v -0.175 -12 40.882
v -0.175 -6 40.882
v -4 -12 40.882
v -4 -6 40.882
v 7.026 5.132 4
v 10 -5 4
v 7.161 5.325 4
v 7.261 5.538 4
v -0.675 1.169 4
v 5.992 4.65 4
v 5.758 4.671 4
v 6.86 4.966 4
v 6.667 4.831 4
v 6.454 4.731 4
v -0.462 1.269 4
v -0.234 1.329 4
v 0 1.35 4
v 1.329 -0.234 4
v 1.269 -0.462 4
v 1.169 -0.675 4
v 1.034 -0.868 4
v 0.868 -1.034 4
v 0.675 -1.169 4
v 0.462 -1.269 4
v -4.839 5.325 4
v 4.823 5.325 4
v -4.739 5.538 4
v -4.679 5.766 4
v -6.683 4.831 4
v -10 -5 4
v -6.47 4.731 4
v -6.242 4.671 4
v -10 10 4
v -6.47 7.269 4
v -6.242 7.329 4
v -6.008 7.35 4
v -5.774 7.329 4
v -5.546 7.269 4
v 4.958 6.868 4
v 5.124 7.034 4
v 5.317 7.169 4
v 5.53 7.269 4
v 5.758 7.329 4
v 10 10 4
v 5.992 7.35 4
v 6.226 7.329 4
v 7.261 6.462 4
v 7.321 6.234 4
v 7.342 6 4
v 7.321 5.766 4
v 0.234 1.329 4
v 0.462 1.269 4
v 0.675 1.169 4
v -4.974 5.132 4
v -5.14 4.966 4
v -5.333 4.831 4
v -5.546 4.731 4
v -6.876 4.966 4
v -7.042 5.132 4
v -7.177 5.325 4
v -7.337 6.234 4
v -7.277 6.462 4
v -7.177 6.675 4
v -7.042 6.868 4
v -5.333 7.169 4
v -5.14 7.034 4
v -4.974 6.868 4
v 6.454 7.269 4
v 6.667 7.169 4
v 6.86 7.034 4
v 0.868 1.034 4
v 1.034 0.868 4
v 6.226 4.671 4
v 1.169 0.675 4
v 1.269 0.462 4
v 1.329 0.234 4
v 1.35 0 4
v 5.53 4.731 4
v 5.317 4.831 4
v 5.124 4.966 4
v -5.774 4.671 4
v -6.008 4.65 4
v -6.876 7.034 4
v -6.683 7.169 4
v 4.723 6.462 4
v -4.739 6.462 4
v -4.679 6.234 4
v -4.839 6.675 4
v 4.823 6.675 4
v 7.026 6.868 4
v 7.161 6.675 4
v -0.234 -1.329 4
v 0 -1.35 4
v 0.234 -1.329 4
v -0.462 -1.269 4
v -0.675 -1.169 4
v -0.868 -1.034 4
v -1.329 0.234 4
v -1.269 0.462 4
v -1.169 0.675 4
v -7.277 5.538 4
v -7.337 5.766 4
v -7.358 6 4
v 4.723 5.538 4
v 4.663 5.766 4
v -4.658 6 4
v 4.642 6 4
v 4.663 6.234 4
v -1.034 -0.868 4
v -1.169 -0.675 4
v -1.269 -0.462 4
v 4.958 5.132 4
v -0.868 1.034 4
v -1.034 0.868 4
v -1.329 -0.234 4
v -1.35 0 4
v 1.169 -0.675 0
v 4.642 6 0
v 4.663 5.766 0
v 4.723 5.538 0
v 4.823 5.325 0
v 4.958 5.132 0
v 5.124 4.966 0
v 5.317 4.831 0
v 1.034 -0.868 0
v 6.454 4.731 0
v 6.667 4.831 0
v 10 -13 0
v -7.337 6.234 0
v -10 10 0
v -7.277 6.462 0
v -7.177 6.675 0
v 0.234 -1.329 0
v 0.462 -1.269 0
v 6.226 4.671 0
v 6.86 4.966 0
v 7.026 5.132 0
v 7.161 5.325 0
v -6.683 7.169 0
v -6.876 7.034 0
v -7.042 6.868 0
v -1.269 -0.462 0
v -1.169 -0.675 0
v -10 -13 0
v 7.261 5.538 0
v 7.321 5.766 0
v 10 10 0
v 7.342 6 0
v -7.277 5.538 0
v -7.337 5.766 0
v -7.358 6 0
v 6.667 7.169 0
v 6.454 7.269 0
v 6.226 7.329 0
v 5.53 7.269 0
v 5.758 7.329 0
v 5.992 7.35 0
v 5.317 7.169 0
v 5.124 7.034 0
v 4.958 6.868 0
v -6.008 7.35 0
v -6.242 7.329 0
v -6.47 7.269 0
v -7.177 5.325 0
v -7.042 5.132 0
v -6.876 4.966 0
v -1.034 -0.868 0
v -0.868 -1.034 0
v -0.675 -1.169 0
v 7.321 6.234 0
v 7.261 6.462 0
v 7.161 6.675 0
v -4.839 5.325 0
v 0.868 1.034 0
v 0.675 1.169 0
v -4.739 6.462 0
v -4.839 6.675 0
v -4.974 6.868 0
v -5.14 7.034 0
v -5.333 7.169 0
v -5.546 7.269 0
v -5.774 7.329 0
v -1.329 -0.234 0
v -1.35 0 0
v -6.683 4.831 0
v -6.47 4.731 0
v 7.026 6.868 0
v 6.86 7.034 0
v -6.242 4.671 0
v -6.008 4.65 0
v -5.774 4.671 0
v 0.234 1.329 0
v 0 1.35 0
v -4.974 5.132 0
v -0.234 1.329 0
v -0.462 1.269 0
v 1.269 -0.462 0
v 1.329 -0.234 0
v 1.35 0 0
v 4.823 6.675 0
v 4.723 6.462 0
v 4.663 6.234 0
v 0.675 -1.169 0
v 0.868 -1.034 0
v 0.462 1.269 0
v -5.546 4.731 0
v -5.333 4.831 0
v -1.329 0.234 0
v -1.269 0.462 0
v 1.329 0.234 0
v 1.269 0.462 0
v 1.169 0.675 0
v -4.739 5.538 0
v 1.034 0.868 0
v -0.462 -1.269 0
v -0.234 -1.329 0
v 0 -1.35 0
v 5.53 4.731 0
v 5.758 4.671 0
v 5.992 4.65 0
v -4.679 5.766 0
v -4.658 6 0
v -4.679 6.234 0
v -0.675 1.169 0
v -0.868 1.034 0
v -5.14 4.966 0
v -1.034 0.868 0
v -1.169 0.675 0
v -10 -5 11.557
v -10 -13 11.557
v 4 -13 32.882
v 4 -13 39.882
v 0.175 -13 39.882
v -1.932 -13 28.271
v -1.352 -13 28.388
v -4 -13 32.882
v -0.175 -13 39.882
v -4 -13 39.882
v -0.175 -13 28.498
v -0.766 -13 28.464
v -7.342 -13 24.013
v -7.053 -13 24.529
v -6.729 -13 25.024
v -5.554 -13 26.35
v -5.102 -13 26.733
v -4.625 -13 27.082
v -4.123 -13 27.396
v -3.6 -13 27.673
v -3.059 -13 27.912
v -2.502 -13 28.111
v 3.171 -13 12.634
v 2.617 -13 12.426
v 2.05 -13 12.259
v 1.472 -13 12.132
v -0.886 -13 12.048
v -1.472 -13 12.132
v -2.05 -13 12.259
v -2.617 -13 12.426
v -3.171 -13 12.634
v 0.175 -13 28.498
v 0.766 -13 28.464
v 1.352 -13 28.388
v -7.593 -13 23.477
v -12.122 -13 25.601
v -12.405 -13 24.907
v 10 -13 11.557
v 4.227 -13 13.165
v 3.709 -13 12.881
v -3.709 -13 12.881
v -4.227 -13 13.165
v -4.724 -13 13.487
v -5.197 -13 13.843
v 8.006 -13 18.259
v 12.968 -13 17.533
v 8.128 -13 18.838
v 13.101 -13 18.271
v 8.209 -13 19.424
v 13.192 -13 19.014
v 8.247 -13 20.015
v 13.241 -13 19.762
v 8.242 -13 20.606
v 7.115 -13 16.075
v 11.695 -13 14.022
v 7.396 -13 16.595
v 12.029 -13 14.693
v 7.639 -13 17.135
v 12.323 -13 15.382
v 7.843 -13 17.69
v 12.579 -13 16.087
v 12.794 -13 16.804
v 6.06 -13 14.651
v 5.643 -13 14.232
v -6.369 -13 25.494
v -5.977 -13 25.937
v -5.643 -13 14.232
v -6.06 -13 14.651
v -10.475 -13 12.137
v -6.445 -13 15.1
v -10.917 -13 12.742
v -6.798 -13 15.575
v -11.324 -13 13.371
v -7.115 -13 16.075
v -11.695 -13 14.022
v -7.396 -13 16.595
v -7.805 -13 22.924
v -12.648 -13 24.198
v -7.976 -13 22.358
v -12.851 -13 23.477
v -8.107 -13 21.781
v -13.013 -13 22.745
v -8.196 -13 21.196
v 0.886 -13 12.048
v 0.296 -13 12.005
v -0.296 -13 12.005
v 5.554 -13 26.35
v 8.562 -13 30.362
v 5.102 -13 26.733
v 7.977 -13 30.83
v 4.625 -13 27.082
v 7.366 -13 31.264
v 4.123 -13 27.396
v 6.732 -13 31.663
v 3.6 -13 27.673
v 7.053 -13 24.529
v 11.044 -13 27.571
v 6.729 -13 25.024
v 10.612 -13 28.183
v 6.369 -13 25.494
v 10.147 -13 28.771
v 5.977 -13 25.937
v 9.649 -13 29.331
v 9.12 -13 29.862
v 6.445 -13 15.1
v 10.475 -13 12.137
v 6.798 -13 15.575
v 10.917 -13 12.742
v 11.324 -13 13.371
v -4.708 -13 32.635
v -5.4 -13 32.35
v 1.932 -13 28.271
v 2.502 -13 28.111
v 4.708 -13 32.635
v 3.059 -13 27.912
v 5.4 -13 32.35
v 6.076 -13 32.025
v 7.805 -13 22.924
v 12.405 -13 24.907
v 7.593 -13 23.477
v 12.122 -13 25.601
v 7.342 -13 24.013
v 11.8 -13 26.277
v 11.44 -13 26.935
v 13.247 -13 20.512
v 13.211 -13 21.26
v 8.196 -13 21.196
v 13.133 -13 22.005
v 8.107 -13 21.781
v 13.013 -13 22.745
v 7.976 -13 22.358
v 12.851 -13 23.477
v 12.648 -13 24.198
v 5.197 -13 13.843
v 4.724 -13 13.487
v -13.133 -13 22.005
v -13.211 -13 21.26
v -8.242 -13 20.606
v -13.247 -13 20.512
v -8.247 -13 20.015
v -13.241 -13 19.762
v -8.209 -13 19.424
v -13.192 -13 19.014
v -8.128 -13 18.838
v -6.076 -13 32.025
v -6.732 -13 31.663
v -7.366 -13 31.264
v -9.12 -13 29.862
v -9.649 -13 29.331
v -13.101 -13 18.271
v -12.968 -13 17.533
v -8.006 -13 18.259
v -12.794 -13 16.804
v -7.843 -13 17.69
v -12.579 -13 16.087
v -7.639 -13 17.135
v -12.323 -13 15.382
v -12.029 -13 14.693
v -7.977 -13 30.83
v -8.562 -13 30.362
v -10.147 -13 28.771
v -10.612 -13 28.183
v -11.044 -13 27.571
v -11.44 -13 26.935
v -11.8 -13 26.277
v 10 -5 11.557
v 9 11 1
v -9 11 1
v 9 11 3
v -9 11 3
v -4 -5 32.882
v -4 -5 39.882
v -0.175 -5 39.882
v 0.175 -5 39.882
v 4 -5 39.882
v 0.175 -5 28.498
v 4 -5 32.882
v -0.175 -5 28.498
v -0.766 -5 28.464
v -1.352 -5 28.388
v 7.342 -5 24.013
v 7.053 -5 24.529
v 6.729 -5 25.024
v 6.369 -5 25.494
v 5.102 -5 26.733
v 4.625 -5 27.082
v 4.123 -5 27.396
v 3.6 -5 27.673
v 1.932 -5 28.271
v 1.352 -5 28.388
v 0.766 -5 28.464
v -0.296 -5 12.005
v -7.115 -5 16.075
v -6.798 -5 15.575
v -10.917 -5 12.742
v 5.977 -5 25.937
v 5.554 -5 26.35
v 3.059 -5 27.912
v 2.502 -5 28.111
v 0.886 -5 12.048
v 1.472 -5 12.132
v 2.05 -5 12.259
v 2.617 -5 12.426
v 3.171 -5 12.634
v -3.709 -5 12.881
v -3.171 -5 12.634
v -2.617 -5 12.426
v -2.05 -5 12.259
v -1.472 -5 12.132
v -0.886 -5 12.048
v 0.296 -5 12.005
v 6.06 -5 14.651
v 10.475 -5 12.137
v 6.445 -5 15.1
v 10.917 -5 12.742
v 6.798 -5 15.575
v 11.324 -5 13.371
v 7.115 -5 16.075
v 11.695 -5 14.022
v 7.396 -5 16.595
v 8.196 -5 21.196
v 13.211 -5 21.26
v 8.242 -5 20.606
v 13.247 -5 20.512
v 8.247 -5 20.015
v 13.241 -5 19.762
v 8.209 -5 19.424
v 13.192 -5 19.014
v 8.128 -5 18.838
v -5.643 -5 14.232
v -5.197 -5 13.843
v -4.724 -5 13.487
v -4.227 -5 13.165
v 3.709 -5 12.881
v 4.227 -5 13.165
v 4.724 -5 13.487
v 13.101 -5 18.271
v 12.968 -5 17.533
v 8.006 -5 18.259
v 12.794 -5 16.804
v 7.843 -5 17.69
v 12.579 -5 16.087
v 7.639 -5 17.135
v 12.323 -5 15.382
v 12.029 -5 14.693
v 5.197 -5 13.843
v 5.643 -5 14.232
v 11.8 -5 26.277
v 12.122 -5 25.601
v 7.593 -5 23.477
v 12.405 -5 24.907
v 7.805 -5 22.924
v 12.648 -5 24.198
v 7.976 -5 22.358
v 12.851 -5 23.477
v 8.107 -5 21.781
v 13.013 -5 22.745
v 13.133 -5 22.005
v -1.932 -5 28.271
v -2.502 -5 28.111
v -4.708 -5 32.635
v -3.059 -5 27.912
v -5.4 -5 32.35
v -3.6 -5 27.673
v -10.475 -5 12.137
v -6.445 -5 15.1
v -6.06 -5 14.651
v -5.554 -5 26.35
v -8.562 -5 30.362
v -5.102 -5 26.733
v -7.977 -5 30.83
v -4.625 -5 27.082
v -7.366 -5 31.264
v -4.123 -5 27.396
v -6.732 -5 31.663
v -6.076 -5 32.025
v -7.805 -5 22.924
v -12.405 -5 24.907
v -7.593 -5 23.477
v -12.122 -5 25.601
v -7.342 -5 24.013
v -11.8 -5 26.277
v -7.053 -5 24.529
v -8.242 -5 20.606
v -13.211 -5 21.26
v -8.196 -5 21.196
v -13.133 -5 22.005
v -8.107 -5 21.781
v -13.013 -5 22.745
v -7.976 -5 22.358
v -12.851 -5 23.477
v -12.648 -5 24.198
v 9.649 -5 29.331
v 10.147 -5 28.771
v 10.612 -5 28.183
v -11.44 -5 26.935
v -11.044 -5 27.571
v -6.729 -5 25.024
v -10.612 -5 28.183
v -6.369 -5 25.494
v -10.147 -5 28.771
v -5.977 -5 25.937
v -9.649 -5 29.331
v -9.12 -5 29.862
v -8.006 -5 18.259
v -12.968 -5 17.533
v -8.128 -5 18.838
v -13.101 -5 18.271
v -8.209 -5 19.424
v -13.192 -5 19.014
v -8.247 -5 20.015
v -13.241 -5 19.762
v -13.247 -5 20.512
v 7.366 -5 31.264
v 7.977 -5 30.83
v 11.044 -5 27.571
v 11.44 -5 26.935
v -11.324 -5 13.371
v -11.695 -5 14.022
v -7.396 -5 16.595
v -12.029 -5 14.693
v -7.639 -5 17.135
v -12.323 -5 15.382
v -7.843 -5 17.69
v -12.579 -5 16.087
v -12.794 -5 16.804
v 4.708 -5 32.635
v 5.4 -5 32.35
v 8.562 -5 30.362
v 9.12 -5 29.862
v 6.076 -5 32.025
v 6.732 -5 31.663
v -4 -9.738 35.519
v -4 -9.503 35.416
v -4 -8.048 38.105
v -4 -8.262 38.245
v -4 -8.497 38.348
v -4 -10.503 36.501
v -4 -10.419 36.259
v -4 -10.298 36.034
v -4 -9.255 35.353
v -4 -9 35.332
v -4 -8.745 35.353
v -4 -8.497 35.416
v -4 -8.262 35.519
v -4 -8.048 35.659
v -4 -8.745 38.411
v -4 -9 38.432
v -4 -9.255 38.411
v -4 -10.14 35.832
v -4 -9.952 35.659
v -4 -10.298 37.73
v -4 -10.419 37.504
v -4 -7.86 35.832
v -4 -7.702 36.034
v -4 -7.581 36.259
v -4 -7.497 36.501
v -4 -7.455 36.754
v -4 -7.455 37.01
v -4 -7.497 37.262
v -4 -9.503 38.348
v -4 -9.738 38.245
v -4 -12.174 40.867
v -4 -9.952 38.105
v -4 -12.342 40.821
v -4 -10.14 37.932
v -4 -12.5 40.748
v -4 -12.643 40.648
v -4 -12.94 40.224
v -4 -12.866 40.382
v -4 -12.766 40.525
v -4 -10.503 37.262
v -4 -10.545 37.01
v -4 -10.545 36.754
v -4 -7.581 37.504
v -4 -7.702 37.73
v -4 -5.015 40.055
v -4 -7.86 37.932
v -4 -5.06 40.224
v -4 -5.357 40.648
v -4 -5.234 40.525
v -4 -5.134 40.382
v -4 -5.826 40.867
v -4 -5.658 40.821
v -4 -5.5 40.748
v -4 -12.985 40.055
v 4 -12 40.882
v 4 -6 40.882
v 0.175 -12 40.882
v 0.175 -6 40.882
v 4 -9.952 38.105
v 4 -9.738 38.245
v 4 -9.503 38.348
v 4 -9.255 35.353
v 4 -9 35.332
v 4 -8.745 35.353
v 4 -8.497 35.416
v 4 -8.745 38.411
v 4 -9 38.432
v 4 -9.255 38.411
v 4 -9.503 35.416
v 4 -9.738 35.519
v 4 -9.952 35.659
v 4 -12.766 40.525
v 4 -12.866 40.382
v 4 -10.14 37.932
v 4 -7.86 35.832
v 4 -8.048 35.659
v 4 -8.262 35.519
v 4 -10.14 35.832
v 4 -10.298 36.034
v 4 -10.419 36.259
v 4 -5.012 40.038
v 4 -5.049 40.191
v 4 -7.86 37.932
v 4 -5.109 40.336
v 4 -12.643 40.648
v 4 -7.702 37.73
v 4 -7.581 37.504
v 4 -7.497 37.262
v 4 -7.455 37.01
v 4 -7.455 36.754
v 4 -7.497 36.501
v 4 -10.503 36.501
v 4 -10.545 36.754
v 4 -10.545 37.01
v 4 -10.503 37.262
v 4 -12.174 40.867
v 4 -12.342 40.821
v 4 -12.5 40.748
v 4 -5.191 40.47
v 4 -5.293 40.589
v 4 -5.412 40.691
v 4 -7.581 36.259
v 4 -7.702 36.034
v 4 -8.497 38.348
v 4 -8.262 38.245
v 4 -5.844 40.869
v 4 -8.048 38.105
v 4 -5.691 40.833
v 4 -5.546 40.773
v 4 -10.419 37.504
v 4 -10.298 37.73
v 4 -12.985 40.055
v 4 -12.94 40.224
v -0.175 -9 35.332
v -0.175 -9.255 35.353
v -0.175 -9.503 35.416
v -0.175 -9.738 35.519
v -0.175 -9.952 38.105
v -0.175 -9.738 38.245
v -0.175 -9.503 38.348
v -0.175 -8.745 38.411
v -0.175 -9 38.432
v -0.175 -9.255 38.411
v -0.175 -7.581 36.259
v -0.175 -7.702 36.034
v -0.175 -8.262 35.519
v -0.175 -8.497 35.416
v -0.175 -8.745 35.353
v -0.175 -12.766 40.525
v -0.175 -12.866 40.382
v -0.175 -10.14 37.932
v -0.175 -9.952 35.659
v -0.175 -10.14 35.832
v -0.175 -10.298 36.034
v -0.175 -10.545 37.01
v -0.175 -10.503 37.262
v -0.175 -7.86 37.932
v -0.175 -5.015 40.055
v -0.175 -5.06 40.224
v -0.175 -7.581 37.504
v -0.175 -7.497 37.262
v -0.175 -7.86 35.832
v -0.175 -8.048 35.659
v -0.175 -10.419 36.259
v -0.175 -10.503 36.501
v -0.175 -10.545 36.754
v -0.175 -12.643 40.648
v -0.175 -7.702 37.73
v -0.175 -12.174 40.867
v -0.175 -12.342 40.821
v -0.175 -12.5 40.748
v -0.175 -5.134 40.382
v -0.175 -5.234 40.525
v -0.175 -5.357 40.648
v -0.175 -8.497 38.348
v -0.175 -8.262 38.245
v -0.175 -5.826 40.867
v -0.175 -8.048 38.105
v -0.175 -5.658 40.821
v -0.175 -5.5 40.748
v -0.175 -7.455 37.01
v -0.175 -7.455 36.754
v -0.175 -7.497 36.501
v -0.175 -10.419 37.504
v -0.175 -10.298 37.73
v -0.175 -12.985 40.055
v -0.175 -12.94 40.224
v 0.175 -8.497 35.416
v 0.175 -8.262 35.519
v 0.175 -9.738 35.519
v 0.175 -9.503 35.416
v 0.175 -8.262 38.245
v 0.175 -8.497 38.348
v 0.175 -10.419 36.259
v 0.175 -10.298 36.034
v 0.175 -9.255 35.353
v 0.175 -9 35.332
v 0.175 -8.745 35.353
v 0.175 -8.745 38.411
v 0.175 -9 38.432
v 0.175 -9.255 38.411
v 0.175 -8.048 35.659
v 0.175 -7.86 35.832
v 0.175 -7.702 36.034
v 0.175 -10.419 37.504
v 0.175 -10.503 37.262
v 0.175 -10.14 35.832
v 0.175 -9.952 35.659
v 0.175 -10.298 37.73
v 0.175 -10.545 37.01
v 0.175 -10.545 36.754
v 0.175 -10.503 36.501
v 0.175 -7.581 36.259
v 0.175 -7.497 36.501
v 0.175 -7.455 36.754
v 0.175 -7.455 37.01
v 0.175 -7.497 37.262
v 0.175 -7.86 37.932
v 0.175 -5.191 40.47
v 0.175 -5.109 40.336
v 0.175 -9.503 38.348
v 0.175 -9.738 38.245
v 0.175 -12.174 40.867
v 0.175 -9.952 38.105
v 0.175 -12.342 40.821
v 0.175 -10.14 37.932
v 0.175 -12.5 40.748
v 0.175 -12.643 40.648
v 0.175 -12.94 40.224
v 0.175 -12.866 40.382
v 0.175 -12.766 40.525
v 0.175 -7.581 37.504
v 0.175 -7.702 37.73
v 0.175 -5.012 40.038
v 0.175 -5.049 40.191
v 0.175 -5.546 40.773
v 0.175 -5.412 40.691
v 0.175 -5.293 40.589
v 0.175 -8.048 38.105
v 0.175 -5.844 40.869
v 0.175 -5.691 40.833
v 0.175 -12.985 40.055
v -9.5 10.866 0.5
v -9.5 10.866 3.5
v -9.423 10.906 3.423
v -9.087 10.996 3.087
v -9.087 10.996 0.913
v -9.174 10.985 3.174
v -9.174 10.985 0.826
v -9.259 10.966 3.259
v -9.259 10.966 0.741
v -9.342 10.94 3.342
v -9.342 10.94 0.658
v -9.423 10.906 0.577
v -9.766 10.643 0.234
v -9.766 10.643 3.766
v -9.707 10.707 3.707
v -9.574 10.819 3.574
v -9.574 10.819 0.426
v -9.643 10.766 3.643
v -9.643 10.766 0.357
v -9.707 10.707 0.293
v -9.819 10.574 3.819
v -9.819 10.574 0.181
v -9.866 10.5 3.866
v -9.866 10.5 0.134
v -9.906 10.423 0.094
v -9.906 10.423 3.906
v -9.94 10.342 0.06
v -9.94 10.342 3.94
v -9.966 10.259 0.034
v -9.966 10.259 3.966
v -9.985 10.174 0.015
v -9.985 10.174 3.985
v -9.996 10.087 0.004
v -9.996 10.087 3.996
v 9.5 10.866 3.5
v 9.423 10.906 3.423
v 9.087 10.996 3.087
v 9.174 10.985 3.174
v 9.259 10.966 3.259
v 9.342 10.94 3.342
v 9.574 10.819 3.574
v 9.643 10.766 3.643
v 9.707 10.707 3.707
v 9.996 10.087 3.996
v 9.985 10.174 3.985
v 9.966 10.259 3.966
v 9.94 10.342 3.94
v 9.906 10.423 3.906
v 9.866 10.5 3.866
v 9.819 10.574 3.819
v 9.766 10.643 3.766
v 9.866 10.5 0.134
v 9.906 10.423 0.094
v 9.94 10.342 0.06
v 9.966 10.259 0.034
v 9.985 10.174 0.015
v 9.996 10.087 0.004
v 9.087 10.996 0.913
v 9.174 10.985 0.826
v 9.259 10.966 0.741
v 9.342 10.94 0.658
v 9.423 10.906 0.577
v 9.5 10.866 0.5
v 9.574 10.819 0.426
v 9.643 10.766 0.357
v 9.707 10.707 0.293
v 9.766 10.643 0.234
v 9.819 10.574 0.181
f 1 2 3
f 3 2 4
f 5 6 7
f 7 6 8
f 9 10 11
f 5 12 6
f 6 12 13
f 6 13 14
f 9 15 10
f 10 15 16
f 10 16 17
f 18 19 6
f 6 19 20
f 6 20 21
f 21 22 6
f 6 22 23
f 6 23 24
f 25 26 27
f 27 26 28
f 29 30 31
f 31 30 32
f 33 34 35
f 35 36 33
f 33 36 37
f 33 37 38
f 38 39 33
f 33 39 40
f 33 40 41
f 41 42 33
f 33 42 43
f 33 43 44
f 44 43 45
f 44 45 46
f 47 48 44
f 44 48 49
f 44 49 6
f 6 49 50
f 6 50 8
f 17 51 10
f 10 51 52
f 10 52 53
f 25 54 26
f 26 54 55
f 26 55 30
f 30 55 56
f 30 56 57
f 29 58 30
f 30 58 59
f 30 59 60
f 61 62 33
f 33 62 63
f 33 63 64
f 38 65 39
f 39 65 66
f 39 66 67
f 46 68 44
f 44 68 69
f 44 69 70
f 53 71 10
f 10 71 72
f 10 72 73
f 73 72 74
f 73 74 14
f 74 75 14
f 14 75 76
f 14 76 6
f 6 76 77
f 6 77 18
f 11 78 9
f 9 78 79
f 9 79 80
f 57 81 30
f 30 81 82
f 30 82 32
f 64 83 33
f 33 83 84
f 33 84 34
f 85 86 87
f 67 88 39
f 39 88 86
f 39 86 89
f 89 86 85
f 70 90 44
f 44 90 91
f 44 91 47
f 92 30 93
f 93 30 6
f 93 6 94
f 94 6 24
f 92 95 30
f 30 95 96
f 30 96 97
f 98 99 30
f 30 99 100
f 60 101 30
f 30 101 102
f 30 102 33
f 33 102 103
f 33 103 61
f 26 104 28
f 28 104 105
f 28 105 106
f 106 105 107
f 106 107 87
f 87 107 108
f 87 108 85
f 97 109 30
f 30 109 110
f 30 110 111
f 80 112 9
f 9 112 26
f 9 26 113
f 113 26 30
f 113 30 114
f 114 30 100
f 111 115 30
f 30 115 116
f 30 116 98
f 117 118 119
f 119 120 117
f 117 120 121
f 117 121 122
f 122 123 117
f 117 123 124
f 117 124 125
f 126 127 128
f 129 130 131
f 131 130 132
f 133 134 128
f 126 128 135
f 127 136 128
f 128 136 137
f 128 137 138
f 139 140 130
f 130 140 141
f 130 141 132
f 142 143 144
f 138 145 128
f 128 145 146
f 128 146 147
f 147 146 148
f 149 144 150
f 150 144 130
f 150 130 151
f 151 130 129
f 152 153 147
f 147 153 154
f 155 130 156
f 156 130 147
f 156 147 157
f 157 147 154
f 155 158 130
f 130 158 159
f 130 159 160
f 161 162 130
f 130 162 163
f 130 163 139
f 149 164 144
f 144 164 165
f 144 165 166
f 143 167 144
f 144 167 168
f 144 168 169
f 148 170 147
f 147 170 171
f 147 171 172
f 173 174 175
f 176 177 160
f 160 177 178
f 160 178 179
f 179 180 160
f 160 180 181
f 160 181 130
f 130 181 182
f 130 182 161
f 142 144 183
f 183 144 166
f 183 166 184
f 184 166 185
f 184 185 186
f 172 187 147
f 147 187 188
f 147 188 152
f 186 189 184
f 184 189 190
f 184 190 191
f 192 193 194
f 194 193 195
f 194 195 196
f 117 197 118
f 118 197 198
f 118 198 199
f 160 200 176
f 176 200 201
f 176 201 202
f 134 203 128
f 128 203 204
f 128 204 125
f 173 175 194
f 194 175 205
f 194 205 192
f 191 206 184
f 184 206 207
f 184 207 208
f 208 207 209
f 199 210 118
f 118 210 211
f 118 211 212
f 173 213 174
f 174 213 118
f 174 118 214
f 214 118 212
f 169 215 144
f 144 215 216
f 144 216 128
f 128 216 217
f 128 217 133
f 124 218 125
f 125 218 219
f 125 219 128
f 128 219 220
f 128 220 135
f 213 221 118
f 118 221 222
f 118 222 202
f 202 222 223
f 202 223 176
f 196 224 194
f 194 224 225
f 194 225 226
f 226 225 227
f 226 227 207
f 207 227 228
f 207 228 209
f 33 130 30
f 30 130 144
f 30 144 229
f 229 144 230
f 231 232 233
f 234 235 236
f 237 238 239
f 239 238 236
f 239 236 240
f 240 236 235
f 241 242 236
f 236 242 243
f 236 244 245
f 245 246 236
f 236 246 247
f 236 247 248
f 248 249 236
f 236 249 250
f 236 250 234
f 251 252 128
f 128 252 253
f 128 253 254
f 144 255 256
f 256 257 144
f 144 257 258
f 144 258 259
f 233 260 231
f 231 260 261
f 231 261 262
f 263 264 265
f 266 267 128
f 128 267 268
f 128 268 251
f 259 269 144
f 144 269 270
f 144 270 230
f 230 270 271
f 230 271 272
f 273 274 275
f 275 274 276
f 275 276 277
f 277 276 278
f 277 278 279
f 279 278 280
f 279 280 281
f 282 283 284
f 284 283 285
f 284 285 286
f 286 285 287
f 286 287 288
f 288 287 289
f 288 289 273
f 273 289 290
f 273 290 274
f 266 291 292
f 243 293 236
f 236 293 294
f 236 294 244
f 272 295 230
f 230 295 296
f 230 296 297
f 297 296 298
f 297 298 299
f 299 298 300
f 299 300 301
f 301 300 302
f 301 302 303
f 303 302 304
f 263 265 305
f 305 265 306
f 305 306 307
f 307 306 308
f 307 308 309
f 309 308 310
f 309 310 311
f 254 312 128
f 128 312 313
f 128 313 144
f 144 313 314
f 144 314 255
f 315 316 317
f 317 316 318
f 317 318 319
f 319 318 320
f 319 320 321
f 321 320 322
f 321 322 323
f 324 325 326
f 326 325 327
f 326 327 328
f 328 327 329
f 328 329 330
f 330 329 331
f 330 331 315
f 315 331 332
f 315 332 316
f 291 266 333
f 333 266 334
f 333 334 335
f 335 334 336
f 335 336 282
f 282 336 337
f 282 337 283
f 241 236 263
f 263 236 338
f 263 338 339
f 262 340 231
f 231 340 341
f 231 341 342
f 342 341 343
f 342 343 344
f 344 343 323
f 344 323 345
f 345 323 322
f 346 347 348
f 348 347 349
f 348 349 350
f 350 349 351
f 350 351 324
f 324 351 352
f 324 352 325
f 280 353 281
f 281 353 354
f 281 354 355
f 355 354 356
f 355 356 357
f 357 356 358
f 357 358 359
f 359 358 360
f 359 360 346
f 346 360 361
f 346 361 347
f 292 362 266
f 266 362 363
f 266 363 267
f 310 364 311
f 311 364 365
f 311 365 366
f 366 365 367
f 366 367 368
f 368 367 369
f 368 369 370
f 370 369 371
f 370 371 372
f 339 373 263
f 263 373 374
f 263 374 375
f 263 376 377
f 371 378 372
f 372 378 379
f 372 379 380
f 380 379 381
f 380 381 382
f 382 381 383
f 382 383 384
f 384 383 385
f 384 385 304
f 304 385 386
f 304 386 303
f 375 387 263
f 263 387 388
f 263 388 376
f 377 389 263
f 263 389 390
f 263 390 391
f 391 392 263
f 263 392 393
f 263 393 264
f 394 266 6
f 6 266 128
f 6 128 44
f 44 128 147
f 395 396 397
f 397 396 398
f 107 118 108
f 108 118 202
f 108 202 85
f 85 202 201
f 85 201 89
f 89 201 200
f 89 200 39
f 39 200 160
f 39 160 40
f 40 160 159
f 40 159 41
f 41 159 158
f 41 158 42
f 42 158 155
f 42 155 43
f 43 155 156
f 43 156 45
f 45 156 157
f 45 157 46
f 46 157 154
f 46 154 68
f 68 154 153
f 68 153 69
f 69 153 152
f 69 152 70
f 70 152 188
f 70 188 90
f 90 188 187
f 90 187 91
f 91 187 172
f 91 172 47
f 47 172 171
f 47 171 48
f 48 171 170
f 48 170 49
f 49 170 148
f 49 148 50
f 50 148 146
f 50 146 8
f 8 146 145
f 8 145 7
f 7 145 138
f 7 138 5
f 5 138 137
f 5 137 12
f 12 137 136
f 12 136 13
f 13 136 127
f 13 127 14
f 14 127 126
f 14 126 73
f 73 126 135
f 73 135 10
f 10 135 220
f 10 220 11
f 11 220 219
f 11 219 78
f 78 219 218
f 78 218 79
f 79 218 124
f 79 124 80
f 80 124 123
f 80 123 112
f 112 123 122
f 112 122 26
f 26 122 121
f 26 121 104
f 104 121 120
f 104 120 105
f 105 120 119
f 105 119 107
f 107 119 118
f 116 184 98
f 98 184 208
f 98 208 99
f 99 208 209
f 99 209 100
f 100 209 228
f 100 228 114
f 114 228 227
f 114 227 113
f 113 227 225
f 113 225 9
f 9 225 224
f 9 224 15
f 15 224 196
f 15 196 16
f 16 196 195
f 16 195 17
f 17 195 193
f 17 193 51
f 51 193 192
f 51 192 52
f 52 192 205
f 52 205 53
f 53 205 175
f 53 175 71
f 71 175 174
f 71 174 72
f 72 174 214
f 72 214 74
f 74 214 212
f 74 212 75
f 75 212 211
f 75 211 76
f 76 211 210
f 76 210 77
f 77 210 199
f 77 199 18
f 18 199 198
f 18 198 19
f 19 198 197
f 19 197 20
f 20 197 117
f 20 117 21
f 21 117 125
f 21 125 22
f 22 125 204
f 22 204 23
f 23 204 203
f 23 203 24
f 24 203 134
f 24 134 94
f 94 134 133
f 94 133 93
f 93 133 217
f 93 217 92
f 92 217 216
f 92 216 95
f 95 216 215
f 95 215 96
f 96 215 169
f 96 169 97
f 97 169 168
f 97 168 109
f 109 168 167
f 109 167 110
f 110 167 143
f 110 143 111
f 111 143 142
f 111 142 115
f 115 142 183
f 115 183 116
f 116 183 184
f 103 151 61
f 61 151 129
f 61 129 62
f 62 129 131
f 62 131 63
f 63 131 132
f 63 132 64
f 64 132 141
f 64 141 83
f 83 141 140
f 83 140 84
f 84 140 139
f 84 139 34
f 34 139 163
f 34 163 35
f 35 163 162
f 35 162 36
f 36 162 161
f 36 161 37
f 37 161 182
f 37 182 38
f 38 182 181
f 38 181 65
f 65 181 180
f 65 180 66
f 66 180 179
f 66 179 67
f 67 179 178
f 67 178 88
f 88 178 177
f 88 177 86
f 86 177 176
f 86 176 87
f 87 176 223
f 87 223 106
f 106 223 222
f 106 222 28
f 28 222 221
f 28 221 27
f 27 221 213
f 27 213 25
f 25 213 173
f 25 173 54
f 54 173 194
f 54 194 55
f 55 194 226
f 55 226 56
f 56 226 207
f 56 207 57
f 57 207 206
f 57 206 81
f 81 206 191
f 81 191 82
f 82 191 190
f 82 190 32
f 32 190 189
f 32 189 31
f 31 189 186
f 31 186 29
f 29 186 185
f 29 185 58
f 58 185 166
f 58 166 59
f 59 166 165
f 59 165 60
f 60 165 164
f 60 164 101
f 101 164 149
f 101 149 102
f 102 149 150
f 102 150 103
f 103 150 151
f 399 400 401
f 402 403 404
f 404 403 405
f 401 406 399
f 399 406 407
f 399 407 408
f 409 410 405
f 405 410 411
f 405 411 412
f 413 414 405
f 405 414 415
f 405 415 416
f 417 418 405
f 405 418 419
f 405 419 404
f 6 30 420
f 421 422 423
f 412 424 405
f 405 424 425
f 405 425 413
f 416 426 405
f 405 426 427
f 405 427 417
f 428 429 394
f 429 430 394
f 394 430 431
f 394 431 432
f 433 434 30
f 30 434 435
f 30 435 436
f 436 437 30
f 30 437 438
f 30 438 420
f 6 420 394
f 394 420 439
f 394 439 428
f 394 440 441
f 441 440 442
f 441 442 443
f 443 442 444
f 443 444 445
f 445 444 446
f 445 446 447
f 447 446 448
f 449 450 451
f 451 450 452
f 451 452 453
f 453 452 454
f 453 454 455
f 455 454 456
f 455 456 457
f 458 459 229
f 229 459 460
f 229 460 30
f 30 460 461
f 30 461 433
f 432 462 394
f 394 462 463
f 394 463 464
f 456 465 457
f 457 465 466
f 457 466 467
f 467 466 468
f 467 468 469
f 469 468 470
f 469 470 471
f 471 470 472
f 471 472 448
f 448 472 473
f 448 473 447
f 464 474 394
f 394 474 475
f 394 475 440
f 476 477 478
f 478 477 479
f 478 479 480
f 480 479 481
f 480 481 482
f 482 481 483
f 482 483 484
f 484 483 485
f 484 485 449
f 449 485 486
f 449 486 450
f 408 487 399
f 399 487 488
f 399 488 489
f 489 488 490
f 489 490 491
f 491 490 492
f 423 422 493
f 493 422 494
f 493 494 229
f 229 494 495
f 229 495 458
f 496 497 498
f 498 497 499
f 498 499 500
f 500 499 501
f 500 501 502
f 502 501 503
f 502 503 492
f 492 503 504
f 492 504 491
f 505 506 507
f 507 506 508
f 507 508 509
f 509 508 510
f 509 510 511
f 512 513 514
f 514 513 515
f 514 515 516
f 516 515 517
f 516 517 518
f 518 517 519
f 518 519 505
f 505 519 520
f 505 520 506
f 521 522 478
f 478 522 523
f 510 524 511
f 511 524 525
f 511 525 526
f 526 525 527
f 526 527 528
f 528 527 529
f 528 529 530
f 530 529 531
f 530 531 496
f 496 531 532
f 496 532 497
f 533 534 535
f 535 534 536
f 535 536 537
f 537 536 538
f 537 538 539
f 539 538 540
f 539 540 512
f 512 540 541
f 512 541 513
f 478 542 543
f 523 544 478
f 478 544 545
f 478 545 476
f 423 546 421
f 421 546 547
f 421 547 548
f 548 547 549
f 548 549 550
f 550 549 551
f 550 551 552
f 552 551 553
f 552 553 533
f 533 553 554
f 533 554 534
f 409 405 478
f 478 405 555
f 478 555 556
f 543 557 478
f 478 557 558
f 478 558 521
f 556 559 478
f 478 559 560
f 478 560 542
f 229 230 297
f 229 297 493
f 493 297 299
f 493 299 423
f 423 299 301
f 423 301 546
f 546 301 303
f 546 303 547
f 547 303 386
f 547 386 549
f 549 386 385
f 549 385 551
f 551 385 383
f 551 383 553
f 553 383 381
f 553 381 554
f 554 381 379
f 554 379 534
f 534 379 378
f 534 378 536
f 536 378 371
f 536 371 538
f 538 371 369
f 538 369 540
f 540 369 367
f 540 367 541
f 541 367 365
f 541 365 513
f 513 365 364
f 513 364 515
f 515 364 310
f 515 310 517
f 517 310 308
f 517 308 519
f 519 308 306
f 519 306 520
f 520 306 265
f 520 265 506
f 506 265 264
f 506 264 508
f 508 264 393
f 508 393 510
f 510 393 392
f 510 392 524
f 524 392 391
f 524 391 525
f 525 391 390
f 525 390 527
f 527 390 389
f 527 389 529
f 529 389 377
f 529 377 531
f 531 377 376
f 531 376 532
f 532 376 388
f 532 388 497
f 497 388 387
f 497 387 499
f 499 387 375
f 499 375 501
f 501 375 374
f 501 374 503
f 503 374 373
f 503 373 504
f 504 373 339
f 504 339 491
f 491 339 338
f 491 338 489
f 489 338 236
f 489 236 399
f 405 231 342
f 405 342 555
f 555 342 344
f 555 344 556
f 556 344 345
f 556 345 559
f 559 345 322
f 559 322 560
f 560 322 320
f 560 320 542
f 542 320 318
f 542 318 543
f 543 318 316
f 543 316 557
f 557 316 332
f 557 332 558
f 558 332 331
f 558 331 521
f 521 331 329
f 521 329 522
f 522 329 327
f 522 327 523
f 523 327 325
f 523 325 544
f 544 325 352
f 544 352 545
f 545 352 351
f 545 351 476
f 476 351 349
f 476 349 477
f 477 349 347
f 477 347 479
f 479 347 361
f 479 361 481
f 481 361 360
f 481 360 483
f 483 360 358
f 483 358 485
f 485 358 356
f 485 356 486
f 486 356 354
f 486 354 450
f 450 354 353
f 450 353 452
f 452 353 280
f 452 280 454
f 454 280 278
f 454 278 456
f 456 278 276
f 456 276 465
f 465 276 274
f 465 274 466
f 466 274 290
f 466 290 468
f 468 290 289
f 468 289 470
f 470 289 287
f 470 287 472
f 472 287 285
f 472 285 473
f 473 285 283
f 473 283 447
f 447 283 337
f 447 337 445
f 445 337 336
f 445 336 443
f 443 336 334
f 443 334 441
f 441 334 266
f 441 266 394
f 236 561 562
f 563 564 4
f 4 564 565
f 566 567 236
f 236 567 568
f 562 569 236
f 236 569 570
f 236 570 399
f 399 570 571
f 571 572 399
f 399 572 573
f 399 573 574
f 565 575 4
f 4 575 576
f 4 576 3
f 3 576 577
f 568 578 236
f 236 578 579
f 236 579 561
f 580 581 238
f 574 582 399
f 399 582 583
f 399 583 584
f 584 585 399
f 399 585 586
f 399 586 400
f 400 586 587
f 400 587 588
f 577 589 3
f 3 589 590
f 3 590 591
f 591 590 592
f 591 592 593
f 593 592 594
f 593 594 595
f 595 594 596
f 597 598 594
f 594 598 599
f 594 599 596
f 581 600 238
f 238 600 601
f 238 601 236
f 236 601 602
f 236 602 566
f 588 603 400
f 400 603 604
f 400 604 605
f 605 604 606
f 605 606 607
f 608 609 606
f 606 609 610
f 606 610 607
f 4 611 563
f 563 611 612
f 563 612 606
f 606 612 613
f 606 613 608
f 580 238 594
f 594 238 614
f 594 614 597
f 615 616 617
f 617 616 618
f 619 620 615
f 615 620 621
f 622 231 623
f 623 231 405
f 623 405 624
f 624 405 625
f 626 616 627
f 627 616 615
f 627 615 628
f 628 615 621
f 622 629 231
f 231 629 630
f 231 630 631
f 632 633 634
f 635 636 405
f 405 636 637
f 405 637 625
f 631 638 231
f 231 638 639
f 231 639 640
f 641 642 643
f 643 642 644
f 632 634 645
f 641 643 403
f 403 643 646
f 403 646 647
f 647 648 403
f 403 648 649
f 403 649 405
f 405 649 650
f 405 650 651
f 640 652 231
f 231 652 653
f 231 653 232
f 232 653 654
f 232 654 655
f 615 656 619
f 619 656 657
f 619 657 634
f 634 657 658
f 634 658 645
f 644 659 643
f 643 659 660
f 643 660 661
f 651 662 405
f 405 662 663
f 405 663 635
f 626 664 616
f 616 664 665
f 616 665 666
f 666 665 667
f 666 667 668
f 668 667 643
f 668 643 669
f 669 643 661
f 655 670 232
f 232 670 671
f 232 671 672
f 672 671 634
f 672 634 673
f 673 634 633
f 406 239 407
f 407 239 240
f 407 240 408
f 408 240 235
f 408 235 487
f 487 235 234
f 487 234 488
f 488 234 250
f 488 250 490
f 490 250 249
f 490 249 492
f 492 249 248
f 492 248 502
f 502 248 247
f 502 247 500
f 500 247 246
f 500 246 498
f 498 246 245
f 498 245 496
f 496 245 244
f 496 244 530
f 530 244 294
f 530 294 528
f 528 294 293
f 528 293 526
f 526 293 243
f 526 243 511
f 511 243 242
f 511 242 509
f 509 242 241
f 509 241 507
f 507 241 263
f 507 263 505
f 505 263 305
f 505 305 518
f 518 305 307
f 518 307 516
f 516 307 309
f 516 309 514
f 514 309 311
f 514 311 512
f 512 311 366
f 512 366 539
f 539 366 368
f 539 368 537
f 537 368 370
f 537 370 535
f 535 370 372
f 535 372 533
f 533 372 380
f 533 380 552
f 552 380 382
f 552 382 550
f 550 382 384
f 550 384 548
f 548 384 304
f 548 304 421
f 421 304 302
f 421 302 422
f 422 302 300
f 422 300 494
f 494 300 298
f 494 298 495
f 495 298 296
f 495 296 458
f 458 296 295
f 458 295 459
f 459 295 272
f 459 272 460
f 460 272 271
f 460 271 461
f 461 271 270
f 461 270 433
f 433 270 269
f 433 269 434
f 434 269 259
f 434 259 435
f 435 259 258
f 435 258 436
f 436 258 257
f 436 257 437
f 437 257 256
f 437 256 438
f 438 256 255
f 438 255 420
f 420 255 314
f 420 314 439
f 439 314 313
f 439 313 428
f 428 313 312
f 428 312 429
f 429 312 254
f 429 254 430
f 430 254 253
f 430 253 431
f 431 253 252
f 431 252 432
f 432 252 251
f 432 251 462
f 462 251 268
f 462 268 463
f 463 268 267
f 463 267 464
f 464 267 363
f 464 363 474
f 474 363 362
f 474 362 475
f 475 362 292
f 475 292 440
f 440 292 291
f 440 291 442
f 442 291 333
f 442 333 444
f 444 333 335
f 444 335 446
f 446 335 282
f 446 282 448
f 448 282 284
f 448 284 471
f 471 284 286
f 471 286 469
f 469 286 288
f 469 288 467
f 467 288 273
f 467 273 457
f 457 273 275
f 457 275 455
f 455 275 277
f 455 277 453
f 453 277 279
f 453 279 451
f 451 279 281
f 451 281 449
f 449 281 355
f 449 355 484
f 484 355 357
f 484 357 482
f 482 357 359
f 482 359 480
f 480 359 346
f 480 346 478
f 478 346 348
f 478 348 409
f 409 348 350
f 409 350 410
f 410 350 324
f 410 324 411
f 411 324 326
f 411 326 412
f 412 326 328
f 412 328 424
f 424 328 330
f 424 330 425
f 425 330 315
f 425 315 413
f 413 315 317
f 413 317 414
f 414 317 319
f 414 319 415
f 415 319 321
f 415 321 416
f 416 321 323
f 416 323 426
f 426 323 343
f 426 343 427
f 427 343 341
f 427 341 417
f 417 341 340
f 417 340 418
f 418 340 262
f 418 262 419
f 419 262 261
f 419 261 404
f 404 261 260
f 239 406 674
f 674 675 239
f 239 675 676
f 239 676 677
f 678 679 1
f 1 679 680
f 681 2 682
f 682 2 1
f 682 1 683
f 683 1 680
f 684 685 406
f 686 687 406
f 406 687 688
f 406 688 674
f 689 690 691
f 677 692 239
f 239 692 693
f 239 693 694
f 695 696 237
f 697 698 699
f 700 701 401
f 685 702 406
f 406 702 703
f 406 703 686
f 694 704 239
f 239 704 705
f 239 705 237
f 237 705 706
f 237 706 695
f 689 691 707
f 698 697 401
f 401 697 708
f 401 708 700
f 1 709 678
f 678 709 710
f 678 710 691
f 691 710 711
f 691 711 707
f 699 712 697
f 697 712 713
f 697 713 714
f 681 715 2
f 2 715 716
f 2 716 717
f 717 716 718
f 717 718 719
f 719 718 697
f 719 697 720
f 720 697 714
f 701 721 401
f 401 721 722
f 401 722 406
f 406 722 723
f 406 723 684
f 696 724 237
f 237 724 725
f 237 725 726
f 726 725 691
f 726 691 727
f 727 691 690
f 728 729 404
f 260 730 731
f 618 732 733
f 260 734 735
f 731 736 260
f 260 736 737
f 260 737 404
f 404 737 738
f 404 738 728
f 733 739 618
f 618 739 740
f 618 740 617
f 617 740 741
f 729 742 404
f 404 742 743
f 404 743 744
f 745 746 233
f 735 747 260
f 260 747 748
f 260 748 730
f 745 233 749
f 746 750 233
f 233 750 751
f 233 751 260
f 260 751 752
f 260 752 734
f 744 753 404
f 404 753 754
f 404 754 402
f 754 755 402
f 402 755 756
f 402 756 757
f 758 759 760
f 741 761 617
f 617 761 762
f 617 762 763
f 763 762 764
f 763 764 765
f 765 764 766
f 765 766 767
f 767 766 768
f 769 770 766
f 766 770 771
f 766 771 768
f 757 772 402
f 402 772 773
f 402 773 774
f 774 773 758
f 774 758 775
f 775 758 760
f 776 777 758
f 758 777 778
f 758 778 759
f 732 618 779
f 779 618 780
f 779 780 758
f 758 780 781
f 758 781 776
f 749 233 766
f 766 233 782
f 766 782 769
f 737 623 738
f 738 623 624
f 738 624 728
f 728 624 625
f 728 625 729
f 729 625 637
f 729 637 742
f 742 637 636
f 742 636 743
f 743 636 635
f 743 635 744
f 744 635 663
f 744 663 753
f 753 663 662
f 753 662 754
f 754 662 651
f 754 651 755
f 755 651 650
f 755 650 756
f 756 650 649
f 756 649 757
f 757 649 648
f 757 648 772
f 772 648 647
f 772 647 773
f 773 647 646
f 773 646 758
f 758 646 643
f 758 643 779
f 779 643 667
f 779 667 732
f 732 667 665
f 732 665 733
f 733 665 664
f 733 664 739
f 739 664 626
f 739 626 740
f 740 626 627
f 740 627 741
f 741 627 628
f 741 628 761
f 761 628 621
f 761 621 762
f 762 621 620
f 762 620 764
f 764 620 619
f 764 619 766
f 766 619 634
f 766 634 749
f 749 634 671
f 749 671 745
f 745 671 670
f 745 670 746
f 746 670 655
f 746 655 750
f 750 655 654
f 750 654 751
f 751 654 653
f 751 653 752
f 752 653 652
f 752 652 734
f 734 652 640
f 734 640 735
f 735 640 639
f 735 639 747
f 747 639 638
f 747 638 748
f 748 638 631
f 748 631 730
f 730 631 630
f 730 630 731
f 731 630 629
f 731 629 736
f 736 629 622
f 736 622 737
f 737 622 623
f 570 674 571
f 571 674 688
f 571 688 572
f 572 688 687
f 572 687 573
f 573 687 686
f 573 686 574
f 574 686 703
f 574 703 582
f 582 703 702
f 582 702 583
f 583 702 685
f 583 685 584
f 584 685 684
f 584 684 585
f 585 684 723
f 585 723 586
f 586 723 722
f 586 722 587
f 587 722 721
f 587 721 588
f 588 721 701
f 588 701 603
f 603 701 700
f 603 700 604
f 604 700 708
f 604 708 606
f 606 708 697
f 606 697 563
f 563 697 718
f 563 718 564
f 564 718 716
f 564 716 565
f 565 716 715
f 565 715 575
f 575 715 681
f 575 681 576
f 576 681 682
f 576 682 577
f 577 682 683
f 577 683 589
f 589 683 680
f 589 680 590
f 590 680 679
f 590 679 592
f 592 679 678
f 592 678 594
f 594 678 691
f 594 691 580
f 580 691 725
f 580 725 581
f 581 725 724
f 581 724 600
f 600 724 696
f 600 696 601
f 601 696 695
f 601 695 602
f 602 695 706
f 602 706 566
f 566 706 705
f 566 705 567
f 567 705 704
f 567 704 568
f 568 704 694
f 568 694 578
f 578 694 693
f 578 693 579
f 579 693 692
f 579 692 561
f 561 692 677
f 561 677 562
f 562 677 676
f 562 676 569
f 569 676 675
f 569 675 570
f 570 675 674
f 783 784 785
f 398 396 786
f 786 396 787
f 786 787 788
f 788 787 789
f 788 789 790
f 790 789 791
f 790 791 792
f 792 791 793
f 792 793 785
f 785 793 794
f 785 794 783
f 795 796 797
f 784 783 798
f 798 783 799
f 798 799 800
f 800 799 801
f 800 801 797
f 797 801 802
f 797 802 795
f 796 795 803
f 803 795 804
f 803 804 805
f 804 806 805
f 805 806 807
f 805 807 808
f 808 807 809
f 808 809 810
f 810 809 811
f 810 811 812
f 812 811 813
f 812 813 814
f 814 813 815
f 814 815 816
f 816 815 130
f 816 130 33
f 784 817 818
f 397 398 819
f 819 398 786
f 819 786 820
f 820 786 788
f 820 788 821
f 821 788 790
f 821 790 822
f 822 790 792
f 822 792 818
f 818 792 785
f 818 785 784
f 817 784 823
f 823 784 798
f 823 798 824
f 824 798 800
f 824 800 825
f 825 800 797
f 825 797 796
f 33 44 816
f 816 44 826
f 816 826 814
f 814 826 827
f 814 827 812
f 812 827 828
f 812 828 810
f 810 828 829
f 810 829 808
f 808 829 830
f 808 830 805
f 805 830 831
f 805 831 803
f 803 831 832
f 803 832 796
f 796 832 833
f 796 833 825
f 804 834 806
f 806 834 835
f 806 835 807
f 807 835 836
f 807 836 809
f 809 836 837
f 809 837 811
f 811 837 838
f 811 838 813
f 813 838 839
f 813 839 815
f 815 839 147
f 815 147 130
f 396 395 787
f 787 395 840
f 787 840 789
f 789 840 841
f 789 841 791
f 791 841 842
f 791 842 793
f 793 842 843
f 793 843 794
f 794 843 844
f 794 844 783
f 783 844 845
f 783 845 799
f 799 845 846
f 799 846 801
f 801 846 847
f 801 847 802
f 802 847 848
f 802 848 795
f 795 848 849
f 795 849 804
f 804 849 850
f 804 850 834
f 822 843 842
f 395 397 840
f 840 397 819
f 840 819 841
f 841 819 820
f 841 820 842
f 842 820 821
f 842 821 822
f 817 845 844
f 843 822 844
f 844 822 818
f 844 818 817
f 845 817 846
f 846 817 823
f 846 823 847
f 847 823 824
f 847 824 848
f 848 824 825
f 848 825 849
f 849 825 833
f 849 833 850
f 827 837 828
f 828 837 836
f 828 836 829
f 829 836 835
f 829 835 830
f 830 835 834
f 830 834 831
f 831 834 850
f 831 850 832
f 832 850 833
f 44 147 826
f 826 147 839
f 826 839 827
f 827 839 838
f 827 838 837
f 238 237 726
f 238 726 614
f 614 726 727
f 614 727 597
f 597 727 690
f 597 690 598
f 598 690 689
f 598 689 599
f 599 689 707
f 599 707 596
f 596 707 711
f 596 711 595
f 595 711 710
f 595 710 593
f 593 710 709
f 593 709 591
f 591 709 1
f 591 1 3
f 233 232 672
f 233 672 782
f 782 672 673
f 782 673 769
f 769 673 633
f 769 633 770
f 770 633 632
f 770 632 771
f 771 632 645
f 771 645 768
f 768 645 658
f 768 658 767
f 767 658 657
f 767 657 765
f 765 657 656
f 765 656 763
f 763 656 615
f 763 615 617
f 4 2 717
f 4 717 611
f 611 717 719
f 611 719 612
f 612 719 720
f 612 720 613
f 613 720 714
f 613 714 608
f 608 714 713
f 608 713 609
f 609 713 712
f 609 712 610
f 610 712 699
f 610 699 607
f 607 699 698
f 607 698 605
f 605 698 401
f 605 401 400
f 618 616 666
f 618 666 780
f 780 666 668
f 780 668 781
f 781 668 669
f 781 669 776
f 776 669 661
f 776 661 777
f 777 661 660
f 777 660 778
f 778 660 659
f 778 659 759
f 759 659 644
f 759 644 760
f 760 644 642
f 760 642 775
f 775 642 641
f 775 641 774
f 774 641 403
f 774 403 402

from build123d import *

# Parameters (mm, degrees)
SKETCH1_W           = 20
SKETCH1_H           = 24
SKETCH1_R           = 1.35
BOSS_EXTRUDE1_DEPTH = 4
SKETCH2_W           = 20
SKETCH2_H           = 8
BOSS_EXTRUDE2_DEPTH = 8
SKETCH3_R           = 8.25
BOSS_EXTRUDE3_DEPTH = 8
SKETCH4_W           = 0.35
SKETCH4_H           = 20.293623418
CUT_EXTRUDE1_DEPTH  = 8
SKETCH6_R           = 1.55
CUT_EXTRUDE2_DEPTH  = 8
FILLET1_R           = 1


with BuildPart() as part:
    # Sketch1 → Boss-Extrude1 (new body)
    with BuildSketch(Plane.XY):
        with Locations((0, -1)):
            Rectangle(SKETCH1_W, SKETCH1_H)
        with Locations((5.991996797, 6)):
            Circle(SKETCH1_R, mode=Mode.SUBTRACT)
        Circle(SKETCH1_R, mode=Mode.SUBTRACT)
        with Locations((-6.008003203, 6)):
            Circle(SKETCH1_R, mode=Mode.SUBTRACT)
    extrude(amount=BOSS_EXTRUDE1_DEPTH)

    # Sketch2 → Boss-Extrude2 (add)
    with BuildSketch(Plane.XY.offset(4)):
        with Locations((0, -9)):
            Rectangle(SKETCH2_W, SKETCH2_H)
    extrude(amount=BOSS_EXTRUDE2_DEPTH)

    # Sketch3 → Boss-Extrude3 (add)
    with BuildSketch(Plane.XZ.offset(13)):
        with BuildLine():
            Line((-4, 32.881805097), (-4, 40.881805097))
            Line((-4, 40.881805097), (4, 40.881805097))
            Line((4, 40.881805097), (4, 32.881805097))
            ThreePointArc((4, 32.881805097), (0, 7), (-4, 32.881805097))
        make_face()
        with Locations((0, 20.25)):
            Circle(SKETCH3_R, mode=Mode.SUBTRACT)
    extrude(amount=-BOSS_EXTRUDE3_DEPTH)

    # Sketch4 → Cut-Extrude1 (cut)
    with BuildSketch(Plane.XZ.offset(13)):
        with Locations((0, 38.64495544)):
            Rectangle(SKETCH4_W, SKETCH4_H)
    extrude(amount=-CUT_EXTRUDE1_DEPTH, mode=Mode.SUBTRACT)

    # Sketch6 → Cut-Extrude2 (cut)
    with BuildSketch(Plane(origin=(4, 0, 0), x_dir=(0, 0, -1), z_dir=(1, 0, 0))):
        with Locations((-36.881805097, -9)):
            Circle(SKETCH6_R)
    extrude(amount=-CUT_EXTRUDE2_DEPTH, mode=Mode.SUBTRACT)

    # Fillet1
    fillet1_edges = [part.edges().sort_by_distance(p)[0] for p in [
        (10, 11, 2),
        (0, 11, 4),
        (-10, 11, 2),
        (0, 11, 0),
        (-2.0875, -5, 40.881805097),
        (-2.0875, -13, 40.881805097),
        (2.0875, -13, 40.881805097),
        (2.0875, -5, 40.881805097),
    ]]
    fillet(fillet1_edges, radius=FILLET1_R)


solid = part.part
